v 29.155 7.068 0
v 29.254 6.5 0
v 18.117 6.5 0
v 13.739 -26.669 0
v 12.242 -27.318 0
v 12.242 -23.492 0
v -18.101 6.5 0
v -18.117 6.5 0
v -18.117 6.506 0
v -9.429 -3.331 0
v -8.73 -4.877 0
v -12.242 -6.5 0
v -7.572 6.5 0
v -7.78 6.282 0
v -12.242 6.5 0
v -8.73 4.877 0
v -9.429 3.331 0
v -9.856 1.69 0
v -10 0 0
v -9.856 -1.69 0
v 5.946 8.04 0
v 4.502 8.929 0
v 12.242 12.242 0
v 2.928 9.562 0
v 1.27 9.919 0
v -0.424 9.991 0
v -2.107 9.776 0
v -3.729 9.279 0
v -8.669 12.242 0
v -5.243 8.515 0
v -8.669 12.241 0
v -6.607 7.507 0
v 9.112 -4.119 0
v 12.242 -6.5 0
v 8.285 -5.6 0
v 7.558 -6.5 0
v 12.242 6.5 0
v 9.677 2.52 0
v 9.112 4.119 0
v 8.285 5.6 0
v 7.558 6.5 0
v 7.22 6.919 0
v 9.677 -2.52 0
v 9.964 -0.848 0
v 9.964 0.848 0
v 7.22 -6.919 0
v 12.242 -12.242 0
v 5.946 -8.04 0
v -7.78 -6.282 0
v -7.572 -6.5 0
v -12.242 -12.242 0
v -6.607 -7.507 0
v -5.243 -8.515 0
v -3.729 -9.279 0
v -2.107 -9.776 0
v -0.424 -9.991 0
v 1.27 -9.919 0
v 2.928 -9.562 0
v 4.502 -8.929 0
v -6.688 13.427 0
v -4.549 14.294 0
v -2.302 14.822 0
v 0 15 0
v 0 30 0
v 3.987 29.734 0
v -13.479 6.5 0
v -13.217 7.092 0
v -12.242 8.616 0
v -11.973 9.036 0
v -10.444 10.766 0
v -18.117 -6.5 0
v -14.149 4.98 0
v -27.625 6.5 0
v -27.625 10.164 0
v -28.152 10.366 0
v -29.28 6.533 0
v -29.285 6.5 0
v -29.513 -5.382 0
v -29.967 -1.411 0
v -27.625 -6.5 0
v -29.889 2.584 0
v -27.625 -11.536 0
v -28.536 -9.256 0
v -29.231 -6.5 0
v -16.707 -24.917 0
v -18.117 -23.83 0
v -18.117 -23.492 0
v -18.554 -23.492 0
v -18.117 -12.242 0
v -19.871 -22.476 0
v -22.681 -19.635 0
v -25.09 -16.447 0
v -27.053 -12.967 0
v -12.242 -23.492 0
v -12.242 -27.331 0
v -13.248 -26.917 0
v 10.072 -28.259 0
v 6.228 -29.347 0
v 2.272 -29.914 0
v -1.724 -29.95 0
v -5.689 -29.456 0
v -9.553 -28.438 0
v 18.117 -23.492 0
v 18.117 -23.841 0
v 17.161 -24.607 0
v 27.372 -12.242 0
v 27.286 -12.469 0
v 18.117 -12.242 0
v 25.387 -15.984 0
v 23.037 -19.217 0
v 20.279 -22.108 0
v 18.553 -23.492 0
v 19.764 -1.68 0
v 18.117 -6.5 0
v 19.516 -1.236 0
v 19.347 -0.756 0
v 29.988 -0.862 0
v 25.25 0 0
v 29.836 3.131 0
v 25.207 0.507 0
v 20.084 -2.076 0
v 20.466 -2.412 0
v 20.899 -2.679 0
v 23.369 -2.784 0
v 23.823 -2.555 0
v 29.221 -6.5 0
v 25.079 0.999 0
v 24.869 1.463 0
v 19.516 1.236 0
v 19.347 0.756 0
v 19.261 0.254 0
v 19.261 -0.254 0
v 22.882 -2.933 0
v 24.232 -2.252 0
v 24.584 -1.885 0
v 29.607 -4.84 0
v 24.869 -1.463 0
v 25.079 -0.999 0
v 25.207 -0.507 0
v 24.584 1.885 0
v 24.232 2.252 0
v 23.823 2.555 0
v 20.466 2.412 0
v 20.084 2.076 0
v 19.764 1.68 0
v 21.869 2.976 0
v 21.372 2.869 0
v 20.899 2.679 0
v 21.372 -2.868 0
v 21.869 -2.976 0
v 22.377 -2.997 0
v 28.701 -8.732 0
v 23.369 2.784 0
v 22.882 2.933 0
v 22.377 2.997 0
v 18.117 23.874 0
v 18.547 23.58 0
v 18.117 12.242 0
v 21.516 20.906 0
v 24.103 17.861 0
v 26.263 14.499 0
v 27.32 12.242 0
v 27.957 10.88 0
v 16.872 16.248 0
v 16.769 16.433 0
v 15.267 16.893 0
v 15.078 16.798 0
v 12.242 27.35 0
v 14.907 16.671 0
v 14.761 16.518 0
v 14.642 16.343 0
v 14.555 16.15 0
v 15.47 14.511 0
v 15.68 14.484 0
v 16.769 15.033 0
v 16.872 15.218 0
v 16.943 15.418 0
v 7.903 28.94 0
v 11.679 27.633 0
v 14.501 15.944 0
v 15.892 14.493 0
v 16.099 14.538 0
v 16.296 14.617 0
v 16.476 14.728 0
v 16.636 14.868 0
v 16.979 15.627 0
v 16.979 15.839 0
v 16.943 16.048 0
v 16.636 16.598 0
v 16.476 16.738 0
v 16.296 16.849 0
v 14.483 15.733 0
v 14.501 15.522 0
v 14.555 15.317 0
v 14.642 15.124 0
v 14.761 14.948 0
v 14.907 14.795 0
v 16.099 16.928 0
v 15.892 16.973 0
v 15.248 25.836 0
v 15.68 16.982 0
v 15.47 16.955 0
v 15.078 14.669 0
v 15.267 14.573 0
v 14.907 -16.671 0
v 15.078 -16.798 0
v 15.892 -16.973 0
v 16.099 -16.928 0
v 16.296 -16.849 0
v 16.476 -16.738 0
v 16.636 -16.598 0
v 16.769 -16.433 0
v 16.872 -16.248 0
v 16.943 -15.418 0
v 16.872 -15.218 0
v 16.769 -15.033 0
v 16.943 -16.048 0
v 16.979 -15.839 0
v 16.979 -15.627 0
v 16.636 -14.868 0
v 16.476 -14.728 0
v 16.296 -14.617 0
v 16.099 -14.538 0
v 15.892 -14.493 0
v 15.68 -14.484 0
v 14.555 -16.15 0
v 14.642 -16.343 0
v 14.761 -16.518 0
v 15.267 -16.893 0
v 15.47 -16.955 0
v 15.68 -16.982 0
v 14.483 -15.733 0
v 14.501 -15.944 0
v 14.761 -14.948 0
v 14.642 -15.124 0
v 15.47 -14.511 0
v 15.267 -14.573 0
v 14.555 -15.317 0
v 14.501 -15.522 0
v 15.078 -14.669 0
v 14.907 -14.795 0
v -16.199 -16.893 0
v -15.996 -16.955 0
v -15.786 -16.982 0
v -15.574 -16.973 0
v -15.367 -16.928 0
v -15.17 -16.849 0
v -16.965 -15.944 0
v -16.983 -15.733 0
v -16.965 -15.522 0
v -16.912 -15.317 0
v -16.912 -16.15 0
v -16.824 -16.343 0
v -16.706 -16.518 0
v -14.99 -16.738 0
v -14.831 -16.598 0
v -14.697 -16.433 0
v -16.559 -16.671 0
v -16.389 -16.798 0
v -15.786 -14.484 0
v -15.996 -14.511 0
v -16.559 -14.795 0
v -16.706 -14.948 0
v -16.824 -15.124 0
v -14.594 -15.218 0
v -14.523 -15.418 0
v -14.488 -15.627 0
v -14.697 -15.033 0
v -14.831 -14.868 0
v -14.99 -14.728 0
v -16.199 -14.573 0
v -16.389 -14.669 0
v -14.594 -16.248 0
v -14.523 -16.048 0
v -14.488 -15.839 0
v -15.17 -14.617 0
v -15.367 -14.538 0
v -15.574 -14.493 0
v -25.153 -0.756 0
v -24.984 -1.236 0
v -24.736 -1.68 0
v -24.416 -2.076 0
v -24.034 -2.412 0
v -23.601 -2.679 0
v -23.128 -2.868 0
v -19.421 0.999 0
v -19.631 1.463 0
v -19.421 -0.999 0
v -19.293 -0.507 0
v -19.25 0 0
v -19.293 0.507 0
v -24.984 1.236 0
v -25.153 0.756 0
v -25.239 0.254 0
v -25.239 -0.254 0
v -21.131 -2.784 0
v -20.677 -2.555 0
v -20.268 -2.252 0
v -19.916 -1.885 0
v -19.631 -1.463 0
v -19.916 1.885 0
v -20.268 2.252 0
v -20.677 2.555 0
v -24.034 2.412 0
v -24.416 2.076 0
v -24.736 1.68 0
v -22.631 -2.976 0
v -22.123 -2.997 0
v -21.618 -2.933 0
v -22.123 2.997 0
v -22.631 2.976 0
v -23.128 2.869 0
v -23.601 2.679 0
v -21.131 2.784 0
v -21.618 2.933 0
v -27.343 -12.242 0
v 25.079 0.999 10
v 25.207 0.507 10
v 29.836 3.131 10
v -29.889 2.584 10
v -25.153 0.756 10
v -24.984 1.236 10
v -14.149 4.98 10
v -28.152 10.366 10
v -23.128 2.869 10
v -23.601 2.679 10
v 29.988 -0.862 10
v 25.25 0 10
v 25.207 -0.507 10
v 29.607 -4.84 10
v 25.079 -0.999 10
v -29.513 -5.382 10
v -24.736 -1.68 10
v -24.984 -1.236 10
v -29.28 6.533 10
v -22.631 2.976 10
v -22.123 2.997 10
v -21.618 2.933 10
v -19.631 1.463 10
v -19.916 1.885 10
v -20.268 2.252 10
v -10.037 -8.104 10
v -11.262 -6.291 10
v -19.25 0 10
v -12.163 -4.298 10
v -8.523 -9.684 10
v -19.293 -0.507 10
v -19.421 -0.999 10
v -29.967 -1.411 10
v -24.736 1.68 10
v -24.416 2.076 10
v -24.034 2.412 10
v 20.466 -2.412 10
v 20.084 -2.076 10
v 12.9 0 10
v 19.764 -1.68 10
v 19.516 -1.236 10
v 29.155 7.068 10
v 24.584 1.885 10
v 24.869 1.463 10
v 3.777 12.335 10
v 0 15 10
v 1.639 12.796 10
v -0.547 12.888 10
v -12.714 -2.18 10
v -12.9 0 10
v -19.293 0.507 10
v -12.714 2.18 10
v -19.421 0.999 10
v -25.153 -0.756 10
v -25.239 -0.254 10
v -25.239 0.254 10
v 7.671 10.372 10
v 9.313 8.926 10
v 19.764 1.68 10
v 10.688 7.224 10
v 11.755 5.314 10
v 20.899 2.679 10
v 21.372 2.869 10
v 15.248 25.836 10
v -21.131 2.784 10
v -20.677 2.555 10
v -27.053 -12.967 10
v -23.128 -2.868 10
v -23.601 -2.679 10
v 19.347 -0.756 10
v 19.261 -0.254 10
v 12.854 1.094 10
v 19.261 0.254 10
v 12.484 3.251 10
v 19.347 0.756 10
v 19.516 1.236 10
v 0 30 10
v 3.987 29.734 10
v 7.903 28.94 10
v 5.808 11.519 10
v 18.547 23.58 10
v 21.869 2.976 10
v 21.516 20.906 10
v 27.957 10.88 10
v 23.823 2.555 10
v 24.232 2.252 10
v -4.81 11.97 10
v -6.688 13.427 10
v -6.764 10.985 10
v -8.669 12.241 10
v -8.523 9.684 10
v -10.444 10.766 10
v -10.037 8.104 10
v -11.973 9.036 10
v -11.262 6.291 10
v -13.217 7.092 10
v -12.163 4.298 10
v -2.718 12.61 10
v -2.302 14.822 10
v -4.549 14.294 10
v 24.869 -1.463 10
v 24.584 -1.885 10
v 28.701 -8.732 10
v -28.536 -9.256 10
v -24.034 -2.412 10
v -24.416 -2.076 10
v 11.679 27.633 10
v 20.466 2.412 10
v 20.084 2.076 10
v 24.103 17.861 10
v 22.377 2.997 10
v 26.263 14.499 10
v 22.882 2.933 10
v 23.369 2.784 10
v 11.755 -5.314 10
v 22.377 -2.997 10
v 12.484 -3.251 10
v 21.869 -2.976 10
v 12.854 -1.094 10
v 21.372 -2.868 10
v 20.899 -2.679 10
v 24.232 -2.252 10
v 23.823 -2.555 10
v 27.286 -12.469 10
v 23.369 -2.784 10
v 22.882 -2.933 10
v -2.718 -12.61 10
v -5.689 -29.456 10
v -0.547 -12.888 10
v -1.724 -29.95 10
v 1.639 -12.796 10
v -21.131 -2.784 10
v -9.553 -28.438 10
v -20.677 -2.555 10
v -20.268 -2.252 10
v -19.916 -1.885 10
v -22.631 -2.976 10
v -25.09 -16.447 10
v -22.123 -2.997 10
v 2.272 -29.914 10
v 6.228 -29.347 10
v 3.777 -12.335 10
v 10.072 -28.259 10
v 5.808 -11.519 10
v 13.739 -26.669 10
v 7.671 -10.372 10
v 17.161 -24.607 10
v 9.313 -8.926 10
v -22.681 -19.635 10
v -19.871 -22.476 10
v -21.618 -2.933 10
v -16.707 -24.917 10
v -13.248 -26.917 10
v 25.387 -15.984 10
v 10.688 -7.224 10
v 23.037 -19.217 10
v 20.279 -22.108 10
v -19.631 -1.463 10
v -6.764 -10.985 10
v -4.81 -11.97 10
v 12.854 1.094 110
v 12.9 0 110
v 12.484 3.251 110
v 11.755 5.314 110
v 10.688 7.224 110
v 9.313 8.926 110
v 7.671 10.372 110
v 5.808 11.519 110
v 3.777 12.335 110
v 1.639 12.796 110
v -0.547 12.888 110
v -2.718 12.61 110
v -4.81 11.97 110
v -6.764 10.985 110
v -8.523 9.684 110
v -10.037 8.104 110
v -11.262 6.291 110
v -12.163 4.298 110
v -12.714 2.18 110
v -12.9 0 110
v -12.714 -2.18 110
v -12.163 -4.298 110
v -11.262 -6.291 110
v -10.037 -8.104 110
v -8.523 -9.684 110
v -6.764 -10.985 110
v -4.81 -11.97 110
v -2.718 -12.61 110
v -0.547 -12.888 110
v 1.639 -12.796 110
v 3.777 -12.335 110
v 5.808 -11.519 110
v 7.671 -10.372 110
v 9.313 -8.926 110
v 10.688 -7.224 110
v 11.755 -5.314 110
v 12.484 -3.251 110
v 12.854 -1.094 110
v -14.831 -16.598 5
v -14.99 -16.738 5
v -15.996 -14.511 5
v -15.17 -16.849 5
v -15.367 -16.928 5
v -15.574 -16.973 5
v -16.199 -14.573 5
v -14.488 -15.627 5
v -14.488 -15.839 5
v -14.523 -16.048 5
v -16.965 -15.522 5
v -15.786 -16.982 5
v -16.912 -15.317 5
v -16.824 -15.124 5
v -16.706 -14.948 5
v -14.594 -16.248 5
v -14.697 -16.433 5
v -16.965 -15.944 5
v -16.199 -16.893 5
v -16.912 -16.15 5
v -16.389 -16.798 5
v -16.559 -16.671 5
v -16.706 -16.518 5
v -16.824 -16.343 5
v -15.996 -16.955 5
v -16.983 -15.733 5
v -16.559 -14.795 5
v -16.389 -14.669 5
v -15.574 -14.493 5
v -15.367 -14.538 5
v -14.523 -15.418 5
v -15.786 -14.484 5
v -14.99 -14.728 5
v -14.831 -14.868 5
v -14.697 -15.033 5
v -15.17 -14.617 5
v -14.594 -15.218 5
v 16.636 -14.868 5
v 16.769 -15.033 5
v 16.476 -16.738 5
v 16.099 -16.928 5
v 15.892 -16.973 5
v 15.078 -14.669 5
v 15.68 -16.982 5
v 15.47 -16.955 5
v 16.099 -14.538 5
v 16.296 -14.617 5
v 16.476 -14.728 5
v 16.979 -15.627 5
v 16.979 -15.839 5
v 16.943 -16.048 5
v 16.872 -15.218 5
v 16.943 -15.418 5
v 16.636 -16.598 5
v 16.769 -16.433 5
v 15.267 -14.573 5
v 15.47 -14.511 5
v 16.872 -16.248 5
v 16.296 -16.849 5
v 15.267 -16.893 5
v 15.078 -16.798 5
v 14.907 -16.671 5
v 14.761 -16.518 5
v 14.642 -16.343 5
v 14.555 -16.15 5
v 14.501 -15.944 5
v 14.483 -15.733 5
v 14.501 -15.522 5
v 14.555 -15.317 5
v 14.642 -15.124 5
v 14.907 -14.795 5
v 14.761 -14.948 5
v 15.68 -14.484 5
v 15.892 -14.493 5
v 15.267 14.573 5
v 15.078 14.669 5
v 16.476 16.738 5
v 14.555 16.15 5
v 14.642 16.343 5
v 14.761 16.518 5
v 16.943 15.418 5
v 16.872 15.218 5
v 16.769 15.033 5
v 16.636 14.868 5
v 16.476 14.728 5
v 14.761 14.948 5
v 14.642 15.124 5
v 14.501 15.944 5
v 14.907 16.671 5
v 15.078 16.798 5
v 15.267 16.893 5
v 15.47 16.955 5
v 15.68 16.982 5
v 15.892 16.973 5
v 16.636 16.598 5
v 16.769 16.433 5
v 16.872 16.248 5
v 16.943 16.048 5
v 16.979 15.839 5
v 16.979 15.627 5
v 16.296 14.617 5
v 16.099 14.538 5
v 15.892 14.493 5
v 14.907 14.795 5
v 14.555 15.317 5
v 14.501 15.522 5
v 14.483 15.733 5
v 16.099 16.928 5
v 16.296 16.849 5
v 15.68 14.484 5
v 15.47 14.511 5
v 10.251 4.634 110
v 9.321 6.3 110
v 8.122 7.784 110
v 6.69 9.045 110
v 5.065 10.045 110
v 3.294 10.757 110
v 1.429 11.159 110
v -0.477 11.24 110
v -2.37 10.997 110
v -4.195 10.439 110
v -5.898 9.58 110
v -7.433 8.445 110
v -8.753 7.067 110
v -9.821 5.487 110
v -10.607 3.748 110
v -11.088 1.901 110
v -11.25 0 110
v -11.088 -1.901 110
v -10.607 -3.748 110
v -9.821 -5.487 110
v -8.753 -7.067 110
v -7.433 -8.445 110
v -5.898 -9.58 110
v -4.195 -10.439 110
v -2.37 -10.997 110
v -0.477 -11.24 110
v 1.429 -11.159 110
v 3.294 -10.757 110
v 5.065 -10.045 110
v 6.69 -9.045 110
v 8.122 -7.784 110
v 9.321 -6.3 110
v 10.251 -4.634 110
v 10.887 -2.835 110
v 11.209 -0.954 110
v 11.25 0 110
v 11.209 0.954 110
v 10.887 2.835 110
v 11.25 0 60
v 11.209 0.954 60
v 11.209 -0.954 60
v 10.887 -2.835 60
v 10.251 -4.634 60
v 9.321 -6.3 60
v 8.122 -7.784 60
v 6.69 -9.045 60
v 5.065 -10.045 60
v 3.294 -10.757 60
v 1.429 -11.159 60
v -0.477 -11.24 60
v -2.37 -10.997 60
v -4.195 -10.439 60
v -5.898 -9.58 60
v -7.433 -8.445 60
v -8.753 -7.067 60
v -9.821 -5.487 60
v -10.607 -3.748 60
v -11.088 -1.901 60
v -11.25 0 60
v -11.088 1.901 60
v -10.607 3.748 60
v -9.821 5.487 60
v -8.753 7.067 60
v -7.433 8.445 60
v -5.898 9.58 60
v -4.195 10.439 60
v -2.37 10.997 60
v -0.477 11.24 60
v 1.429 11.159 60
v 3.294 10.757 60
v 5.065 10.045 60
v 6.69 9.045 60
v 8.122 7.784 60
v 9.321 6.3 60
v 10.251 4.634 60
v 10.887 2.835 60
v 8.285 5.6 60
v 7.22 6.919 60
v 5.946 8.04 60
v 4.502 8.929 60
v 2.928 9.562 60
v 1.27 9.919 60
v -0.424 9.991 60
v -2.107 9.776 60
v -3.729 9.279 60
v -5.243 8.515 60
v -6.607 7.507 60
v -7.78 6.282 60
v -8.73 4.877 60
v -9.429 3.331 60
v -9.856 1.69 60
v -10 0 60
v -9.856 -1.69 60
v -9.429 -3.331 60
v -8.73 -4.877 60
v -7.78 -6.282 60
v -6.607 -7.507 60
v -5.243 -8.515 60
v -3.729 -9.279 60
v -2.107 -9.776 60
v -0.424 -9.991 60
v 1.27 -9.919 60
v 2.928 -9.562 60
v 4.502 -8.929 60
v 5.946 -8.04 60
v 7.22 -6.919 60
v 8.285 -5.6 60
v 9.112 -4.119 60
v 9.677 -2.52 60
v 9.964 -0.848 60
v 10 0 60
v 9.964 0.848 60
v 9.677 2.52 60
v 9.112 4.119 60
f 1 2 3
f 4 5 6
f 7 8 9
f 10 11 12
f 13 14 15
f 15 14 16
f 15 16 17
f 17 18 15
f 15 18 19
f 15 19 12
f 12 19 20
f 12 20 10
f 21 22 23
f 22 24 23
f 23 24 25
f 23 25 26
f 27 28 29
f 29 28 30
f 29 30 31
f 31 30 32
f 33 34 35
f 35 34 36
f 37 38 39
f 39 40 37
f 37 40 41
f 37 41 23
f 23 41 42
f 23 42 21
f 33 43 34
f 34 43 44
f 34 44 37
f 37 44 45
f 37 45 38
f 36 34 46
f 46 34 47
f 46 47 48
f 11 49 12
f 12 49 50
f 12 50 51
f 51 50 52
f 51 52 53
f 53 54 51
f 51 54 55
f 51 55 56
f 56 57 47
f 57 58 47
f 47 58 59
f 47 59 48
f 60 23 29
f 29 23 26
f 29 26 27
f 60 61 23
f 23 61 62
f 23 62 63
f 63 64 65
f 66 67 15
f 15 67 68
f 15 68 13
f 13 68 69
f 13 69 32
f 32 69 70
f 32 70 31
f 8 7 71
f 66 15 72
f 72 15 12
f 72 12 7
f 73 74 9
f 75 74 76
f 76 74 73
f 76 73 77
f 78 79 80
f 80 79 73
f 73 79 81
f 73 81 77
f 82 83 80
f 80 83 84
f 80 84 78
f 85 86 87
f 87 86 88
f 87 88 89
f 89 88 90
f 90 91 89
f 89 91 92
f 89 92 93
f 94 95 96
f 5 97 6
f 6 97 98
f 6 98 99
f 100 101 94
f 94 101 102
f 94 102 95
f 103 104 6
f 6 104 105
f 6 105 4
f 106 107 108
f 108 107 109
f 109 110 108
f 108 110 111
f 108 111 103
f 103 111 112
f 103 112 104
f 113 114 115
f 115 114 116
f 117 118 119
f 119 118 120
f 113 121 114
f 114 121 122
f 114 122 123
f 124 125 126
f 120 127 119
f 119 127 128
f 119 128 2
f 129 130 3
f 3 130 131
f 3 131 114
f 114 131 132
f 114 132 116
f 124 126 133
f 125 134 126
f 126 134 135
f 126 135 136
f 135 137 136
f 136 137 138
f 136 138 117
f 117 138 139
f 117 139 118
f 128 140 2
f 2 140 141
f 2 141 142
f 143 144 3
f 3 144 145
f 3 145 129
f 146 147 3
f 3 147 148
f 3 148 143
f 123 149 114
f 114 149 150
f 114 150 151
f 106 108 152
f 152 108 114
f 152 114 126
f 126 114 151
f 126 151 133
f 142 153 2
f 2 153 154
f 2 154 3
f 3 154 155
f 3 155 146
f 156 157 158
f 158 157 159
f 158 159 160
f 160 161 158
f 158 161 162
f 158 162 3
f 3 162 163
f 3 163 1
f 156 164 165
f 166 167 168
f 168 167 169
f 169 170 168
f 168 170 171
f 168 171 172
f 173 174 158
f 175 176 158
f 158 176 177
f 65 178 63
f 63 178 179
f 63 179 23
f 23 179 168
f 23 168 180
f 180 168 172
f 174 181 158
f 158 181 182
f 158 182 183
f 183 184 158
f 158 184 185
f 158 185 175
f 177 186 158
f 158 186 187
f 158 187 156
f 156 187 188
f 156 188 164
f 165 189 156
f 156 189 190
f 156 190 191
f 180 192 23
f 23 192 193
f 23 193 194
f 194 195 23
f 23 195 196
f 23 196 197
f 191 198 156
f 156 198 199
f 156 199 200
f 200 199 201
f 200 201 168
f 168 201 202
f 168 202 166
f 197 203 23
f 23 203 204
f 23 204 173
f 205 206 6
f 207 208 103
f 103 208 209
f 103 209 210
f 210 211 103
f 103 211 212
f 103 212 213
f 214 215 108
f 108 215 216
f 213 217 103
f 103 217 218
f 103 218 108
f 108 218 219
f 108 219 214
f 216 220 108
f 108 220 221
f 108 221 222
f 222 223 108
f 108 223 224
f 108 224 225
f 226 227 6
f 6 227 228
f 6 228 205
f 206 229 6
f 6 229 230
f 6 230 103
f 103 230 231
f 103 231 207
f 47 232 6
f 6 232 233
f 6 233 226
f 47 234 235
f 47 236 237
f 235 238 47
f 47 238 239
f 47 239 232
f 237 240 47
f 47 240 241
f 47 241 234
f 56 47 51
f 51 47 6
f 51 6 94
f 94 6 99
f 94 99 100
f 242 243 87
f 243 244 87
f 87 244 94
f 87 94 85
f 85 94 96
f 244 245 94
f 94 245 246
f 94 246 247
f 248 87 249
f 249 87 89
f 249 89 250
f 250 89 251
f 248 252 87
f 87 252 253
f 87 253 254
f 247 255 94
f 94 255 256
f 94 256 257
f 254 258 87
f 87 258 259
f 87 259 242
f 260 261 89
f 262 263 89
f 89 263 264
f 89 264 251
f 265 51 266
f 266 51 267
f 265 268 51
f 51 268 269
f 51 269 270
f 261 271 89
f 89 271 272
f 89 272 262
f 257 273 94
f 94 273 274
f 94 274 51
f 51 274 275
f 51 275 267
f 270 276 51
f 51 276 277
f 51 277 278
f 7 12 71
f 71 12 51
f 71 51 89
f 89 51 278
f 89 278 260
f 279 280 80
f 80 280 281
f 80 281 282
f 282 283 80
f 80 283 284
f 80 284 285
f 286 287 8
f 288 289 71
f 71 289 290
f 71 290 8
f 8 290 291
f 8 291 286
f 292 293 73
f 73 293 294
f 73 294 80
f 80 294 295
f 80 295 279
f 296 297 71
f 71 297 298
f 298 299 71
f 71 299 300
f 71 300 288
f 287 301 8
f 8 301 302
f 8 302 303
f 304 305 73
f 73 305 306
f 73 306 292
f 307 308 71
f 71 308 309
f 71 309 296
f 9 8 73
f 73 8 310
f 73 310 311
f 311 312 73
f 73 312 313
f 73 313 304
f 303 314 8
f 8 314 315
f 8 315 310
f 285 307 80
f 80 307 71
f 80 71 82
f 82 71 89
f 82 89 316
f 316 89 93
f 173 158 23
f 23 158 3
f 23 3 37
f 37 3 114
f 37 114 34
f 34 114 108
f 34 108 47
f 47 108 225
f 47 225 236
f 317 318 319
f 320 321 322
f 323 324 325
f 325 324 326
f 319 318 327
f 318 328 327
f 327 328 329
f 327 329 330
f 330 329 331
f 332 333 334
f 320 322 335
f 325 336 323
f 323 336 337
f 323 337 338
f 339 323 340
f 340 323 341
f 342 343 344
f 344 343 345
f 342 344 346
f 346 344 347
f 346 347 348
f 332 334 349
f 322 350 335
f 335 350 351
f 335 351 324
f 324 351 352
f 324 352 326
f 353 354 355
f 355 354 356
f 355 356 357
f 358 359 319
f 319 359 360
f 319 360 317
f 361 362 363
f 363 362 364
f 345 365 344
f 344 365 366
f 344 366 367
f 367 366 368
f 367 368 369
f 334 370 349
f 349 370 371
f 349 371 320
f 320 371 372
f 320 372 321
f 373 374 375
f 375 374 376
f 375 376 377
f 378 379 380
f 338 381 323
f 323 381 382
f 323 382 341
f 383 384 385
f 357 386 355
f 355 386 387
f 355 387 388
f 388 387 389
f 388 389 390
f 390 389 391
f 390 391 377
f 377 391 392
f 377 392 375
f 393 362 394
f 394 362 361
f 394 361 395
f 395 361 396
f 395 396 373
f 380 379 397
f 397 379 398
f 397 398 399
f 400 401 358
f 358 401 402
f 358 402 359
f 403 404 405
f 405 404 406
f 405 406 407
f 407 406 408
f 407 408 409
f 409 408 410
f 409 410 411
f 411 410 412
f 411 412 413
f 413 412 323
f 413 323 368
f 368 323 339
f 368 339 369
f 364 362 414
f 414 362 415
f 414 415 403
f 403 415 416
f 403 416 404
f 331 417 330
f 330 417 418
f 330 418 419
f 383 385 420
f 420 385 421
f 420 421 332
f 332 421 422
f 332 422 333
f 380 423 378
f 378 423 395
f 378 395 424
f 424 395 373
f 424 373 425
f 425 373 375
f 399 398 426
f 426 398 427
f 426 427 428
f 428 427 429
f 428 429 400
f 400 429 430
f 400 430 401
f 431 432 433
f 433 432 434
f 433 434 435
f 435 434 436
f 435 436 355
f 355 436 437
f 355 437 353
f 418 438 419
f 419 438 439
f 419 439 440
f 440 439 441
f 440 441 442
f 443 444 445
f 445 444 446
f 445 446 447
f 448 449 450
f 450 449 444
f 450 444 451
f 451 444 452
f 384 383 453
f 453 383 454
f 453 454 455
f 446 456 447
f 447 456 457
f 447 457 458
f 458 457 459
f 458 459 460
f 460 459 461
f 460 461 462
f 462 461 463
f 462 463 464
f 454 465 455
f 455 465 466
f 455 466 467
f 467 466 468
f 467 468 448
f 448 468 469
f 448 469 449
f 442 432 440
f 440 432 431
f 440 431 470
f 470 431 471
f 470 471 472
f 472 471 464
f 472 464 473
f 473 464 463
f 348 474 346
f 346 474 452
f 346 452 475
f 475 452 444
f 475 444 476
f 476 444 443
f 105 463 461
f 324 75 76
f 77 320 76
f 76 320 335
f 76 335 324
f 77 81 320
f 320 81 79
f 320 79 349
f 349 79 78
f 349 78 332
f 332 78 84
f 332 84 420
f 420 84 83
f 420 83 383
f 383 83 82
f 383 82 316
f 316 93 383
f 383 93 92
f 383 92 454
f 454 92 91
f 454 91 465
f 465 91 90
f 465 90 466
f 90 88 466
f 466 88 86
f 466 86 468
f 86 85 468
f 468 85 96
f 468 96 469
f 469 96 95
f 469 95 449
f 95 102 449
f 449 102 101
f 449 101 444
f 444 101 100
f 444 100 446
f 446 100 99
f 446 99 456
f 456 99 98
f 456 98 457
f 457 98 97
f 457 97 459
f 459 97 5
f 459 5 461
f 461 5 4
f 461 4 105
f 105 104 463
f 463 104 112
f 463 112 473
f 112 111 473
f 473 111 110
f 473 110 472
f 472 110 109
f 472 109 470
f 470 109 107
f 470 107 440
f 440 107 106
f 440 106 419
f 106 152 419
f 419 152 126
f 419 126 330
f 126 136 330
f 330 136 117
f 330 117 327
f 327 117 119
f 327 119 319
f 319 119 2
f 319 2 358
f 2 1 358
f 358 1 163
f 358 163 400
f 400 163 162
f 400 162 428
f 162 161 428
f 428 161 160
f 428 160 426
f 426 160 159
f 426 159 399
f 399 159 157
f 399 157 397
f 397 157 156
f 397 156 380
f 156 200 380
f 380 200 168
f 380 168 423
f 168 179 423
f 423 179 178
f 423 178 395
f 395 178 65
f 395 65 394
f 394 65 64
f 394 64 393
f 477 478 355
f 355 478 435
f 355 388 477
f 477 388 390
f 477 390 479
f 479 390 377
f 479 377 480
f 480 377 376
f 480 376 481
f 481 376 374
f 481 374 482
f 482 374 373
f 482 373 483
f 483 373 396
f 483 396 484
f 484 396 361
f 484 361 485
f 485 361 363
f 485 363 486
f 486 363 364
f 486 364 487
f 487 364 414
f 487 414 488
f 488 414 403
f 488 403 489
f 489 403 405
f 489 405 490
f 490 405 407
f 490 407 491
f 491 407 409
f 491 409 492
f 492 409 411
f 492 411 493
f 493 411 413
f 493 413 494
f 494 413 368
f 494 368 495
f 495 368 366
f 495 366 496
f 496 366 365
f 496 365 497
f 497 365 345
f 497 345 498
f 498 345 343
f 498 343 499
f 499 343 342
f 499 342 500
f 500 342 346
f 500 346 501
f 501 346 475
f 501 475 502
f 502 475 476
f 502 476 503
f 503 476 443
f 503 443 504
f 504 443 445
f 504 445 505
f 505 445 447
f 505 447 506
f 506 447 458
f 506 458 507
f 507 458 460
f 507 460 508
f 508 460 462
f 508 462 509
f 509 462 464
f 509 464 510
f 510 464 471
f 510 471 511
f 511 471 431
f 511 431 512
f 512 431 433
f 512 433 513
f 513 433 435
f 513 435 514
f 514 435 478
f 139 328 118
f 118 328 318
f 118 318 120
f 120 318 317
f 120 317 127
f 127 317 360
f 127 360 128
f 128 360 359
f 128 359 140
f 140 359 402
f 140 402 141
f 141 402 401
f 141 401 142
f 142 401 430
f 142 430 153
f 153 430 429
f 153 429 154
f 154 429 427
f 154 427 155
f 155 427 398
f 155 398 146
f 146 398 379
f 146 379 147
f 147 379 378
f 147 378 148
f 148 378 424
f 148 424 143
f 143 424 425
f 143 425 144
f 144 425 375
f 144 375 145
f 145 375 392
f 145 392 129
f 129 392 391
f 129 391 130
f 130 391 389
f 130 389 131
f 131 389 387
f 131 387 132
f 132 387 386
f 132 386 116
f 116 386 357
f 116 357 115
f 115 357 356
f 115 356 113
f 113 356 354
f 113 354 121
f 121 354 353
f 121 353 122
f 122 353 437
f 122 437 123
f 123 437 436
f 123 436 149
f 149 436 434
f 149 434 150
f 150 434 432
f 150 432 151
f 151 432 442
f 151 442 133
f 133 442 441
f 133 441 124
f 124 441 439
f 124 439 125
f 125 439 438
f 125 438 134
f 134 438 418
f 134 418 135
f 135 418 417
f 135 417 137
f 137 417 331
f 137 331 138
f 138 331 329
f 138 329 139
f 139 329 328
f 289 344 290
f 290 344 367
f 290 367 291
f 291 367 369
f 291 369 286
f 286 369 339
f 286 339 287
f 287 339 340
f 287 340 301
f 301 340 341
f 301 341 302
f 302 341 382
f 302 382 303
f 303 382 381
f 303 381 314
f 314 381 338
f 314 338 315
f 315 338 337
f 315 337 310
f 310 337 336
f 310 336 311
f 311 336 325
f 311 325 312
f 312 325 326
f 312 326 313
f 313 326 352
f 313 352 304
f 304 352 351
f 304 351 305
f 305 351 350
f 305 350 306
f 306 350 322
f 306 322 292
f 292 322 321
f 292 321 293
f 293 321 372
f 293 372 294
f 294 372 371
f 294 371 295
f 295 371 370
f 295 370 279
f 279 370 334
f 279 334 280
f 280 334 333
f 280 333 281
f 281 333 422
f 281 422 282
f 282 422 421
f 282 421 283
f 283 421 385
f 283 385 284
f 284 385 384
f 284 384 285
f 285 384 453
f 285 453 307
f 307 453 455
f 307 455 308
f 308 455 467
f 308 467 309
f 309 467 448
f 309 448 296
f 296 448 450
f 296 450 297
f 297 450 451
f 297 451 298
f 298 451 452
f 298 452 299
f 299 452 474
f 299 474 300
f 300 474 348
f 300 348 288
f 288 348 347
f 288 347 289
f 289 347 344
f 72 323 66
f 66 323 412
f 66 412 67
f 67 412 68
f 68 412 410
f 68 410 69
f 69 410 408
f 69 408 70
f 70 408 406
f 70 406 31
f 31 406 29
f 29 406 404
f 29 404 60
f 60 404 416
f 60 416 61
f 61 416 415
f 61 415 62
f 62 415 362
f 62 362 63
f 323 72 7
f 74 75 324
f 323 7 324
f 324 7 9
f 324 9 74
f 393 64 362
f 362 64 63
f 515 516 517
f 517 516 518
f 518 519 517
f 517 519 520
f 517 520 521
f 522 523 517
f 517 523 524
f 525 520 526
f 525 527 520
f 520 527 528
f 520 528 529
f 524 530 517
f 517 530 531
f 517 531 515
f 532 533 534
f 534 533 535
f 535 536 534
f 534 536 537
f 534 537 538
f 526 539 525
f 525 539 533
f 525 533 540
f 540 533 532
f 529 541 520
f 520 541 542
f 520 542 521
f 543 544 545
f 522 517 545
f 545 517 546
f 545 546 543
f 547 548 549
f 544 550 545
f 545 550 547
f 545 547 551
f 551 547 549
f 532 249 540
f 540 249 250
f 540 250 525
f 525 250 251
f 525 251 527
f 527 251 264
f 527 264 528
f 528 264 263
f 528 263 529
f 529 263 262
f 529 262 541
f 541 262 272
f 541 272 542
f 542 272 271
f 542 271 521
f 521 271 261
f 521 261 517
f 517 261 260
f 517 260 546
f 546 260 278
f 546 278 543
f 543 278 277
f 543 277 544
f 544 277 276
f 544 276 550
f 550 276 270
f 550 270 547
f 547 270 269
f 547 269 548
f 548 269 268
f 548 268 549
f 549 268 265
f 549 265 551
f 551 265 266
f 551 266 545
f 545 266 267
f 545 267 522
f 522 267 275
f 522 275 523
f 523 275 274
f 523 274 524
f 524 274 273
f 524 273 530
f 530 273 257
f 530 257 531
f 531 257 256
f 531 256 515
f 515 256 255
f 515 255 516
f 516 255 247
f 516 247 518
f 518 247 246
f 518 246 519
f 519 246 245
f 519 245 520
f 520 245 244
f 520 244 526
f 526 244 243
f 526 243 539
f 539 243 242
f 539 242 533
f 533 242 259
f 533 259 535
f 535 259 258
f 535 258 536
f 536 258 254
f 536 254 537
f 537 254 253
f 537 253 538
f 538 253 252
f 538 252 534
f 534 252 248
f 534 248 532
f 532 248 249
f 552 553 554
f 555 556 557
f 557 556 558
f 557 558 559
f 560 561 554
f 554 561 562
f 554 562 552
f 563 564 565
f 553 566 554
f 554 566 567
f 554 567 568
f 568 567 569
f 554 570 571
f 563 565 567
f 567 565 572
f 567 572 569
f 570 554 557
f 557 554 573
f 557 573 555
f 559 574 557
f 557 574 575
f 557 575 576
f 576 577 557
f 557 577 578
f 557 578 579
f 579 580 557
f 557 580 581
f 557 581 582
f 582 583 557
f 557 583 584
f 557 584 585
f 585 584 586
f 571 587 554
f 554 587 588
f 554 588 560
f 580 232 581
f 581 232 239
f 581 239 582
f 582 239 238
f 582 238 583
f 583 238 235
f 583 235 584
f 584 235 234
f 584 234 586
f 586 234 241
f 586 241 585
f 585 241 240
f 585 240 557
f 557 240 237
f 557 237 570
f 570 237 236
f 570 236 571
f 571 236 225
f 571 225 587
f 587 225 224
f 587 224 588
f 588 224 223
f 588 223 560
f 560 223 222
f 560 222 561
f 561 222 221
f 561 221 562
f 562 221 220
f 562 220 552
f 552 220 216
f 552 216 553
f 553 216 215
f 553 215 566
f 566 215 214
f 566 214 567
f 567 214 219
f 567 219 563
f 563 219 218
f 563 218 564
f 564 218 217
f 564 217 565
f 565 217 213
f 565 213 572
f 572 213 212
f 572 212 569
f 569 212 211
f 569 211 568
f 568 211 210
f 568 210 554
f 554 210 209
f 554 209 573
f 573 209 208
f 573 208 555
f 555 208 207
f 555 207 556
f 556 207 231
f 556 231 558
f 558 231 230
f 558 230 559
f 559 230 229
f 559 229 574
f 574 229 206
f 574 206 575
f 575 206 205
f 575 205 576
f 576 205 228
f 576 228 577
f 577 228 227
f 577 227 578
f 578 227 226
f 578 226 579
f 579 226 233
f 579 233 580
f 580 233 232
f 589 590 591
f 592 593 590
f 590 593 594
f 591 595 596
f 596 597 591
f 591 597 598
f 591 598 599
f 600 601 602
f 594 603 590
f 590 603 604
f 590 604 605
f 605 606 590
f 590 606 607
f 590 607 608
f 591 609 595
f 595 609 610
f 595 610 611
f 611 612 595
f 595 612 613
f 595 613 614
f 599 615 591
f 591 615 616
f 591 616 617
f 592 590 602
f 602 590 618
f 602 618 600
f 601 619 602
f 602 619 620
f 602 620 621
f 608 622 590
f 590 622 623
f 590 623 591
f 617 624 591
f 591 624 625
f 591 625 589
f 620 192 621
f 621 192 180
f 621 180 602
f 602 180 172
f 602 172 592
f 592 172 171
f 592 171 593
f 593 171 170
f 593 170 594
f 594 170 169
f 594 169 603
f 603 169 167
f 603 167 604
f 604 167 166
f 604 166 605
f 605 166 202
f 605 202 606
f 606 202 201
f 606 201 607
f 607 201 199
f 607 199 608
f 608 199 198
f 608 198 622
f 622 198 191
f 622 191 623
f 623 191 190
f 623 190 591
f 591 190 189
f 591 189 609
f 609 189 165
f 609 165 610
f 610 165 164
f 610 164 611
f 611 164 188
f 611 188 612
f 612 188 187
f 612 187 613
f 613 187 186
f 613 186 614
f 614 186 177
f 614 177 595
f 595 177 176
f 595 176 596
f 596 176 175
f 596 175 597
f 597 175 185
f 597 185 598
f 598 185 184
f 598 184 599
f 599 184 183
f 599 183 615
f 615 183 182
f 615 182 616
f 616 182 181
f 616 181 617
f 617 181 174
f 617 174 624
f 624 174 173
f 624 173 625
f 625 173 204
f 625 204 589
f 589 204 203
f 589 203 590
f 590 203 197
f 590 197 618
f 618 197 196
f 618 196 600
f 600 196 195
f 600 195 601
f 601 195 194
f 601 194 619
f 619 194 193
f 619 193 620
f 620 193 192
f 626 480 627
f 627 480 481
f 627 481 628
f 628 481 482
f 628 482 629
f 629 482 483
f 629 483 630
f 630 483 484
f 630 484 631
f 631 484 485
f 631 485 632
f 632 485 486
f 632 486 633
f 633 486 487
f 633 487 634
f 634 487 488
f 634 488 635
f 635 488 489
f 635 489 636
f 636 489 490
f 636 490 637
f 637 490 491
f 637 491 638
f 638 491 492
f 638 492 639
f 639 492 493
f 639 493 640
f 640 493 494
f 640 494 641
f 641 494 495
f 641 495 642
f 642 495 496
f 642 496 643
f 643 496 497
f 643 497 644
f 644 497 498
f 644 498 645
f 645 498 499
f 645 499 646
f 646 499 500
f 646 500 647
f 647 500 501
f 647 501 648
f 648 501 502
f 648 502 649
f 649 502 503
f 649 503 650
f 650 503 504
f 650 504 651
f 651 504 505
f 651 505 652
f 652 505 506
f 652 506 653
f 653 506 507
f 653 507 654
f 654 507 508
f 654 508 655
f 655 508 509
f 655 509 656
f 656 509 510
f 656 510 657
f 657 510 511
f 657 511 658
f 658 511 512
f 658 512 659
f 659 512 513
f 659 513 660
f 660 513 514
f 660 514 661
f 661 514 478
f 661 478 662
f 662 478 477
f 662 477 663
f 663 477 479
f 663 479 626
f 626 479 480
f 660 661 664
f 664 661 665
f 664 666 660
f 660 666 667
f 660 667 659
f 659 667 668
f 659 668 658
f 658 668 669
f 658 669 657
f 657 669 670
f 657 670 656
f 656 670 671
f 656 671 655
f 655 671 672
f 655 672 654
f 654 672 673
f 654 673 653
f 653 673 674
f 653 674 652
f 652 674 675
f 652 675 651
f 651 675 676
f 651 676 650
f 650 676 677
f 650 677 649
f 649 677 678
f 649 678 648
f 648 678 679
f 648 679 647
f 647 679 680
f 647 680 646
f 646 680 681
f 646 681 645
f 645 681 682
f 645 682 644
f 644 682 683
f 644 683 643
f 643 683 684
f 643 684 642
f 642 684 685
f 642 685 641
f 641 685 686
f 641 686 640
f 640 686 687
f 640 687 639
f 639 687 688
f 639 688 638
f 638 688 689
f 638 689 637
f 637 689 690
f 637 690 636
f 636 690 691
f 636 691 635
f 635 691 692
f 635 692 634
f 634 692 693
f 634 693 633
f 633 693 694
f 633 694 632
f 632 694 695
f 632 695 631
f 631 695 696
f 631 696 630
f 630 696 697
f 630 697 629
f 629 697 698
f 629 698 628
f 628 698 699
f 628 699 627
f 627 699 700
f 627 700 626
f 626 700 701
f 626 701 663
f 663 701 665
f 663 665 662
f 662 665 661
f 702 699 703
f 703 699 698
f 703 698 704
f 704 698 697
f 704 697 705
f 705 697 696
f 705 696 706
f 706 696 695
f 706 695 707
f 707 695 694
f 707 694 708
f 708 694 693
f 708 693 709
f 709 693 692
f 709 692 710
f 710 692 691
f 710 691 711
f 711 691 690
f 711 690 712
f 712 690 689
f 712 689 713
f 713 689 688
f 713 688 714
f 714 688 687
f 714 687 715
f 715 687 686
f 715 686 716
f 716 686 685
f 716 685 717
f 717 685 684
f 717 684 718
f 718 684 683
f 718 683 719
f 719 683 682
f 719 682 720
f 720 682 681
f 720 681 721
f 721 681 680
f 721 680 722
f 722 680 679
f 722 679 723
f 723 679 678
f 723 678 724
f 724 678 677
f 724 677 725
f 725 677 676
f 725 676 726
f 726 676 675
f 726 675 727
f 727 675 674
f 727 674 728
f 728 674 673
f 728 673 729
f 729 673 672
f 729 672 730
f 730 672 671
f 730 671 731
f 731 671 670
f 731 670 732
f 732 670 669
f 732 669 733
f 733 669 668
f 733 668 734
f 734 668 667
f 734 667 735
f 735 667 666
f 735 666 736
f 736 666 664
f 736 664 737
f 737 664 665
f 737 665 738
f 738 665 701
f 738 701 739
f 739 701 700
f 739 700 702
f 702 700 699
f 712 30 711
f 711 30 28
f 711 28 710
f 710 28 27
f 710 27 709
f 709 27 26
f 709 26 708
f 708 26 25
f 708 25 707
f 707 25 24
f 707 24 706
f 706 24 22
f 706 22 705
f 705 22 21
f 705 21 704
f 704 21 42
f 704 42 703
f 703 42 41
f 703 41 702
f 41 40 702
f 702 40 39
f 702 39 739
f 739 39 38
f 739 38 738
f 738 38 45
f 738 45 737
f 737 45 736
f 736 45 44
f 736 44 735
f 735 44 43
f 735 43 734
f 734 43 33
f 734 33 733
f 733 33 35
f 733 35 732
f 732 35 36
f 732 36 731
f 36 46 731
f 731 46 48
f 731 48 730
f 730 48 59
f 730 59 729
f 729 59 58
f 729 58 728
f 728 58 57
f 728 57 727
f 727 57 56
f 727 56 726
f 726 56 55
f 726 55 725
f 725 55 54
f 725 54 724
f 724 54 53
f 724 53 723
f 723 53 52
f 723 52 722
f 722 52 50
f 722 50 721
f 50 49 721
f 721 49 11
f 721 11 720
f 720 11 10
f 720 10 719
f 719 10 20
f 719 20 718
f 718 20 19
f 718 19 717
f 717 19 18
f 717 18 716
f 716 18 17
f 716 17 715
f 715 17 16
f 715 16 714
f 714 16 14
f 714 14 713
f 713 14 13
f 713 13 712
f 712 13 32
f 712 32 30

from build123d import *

# Parameters (mm, degrees)
SKETCH1_R                 = 30
BOSS_EXTRUDE1_DEPTH       = 10
SKETCH2_R                 = 12.9
BOSS_EXTRUDE2_DEPTH       = 50
F_6_0MM_DOWEL_HOLE1_D     = 6
CUT_EXTRUDE2_START        = -50
CUT_EXTRUDE2_DEPTH        = 50
F_2_5MM_DOWEL_HOLE1_D     = 2.5
F_2_5MM_DOWEL_HOLE1_DEPTH = 5
SKETCH15_R                = 12.9
SKETCH15_R_2              = 11.25
BOSS_EXTRUDE3_DEPTH       = 50
F_6_0MM_DOWEL_HOLE2_D     = 20


with BuildPart() as part:
    # Sketch1 → Boss-Extrude1 (new body)
    with BuildSketch(Plane.XY):
        Circle(SKETCH1_R)
    extrude(amount=BOSS_EXTRUDE1_DEPTH)

    # Sketch2 → Boss-Extrude2 (add)
    with BuildSketch(Plane.XY.offset(10)):
        Circle(SKETCH2_R)
    extrude(amount=BOSS_EXTRUDE2_DEPTH)

    # Ø6.0mm Dowel Hole1 (through all)
    with Locations(Plane.XY.offset(10)):
        with Locations((-22.25, 0), (22.25, 0)):
            Hole(F_6_0MM_DOWEL_HOLE1_D / 2)

    # Sketch7 → Cut-Extrude2 (cut)
    with BuildSketch(Plane.XY.offset(10).offset(CUT_EXTRUDE2_START)):
        with BuildLine():
            Line((0, 15), (0, 30))
            ThreePointArc((0, 30), (-17.161157118, 24.606801628), (-28.152079261, 10.366312424))
            Line((-28.152079261, 10.366312424), (-14.149156244, 4.98009815))
            ThreePointArc((-14.149156244, 4.98009815), (-8.668867508, 12.241353525), (0, 15))
        make_face()
    extrude(amount=CUT_EXTRUDE2_DEPTH, mode=Mode.SUBTRACT)

    # Ø2.5mm Dowel Hole1
    with Locations(Plane(origin=(0, 0, 0), x_dir=(-1, 0, 0), z_dir=(0, 0, -1))):
        with Locations((-15.733125881, 15.733125881), (-15.733125881, -15.733125881), (15.733125881, -15.733125881)):
            Hole(F_2_5MM_DOWEL_HOLE1_D / 2, depth=F_2_5MM_DOWEL_HOLE1_DEPTH)

    # Sketch15 → Boss-Extrude3 (add)
    with BuildSketch(Plane.XY.offset(60)):
        Circle(SKETCH15_R)
        Circle(SKETCH15_R_2, mode=Mode.SUBTRACT)
    extrude(amount=BOSS_EXTRUDE3_DEPTH)

    # Ø6.0mm Dowel Hole2 (through all)
    with Locations(Plane(origin=(0, 0, 0), x_dir=(-1, 0, 0), z_dir=(0, 0, -1))):
        with Locations((0, 0)):
            Hole(F_6_0MM_DOWEL_HOLE2_D / 2)


solid = part.part
